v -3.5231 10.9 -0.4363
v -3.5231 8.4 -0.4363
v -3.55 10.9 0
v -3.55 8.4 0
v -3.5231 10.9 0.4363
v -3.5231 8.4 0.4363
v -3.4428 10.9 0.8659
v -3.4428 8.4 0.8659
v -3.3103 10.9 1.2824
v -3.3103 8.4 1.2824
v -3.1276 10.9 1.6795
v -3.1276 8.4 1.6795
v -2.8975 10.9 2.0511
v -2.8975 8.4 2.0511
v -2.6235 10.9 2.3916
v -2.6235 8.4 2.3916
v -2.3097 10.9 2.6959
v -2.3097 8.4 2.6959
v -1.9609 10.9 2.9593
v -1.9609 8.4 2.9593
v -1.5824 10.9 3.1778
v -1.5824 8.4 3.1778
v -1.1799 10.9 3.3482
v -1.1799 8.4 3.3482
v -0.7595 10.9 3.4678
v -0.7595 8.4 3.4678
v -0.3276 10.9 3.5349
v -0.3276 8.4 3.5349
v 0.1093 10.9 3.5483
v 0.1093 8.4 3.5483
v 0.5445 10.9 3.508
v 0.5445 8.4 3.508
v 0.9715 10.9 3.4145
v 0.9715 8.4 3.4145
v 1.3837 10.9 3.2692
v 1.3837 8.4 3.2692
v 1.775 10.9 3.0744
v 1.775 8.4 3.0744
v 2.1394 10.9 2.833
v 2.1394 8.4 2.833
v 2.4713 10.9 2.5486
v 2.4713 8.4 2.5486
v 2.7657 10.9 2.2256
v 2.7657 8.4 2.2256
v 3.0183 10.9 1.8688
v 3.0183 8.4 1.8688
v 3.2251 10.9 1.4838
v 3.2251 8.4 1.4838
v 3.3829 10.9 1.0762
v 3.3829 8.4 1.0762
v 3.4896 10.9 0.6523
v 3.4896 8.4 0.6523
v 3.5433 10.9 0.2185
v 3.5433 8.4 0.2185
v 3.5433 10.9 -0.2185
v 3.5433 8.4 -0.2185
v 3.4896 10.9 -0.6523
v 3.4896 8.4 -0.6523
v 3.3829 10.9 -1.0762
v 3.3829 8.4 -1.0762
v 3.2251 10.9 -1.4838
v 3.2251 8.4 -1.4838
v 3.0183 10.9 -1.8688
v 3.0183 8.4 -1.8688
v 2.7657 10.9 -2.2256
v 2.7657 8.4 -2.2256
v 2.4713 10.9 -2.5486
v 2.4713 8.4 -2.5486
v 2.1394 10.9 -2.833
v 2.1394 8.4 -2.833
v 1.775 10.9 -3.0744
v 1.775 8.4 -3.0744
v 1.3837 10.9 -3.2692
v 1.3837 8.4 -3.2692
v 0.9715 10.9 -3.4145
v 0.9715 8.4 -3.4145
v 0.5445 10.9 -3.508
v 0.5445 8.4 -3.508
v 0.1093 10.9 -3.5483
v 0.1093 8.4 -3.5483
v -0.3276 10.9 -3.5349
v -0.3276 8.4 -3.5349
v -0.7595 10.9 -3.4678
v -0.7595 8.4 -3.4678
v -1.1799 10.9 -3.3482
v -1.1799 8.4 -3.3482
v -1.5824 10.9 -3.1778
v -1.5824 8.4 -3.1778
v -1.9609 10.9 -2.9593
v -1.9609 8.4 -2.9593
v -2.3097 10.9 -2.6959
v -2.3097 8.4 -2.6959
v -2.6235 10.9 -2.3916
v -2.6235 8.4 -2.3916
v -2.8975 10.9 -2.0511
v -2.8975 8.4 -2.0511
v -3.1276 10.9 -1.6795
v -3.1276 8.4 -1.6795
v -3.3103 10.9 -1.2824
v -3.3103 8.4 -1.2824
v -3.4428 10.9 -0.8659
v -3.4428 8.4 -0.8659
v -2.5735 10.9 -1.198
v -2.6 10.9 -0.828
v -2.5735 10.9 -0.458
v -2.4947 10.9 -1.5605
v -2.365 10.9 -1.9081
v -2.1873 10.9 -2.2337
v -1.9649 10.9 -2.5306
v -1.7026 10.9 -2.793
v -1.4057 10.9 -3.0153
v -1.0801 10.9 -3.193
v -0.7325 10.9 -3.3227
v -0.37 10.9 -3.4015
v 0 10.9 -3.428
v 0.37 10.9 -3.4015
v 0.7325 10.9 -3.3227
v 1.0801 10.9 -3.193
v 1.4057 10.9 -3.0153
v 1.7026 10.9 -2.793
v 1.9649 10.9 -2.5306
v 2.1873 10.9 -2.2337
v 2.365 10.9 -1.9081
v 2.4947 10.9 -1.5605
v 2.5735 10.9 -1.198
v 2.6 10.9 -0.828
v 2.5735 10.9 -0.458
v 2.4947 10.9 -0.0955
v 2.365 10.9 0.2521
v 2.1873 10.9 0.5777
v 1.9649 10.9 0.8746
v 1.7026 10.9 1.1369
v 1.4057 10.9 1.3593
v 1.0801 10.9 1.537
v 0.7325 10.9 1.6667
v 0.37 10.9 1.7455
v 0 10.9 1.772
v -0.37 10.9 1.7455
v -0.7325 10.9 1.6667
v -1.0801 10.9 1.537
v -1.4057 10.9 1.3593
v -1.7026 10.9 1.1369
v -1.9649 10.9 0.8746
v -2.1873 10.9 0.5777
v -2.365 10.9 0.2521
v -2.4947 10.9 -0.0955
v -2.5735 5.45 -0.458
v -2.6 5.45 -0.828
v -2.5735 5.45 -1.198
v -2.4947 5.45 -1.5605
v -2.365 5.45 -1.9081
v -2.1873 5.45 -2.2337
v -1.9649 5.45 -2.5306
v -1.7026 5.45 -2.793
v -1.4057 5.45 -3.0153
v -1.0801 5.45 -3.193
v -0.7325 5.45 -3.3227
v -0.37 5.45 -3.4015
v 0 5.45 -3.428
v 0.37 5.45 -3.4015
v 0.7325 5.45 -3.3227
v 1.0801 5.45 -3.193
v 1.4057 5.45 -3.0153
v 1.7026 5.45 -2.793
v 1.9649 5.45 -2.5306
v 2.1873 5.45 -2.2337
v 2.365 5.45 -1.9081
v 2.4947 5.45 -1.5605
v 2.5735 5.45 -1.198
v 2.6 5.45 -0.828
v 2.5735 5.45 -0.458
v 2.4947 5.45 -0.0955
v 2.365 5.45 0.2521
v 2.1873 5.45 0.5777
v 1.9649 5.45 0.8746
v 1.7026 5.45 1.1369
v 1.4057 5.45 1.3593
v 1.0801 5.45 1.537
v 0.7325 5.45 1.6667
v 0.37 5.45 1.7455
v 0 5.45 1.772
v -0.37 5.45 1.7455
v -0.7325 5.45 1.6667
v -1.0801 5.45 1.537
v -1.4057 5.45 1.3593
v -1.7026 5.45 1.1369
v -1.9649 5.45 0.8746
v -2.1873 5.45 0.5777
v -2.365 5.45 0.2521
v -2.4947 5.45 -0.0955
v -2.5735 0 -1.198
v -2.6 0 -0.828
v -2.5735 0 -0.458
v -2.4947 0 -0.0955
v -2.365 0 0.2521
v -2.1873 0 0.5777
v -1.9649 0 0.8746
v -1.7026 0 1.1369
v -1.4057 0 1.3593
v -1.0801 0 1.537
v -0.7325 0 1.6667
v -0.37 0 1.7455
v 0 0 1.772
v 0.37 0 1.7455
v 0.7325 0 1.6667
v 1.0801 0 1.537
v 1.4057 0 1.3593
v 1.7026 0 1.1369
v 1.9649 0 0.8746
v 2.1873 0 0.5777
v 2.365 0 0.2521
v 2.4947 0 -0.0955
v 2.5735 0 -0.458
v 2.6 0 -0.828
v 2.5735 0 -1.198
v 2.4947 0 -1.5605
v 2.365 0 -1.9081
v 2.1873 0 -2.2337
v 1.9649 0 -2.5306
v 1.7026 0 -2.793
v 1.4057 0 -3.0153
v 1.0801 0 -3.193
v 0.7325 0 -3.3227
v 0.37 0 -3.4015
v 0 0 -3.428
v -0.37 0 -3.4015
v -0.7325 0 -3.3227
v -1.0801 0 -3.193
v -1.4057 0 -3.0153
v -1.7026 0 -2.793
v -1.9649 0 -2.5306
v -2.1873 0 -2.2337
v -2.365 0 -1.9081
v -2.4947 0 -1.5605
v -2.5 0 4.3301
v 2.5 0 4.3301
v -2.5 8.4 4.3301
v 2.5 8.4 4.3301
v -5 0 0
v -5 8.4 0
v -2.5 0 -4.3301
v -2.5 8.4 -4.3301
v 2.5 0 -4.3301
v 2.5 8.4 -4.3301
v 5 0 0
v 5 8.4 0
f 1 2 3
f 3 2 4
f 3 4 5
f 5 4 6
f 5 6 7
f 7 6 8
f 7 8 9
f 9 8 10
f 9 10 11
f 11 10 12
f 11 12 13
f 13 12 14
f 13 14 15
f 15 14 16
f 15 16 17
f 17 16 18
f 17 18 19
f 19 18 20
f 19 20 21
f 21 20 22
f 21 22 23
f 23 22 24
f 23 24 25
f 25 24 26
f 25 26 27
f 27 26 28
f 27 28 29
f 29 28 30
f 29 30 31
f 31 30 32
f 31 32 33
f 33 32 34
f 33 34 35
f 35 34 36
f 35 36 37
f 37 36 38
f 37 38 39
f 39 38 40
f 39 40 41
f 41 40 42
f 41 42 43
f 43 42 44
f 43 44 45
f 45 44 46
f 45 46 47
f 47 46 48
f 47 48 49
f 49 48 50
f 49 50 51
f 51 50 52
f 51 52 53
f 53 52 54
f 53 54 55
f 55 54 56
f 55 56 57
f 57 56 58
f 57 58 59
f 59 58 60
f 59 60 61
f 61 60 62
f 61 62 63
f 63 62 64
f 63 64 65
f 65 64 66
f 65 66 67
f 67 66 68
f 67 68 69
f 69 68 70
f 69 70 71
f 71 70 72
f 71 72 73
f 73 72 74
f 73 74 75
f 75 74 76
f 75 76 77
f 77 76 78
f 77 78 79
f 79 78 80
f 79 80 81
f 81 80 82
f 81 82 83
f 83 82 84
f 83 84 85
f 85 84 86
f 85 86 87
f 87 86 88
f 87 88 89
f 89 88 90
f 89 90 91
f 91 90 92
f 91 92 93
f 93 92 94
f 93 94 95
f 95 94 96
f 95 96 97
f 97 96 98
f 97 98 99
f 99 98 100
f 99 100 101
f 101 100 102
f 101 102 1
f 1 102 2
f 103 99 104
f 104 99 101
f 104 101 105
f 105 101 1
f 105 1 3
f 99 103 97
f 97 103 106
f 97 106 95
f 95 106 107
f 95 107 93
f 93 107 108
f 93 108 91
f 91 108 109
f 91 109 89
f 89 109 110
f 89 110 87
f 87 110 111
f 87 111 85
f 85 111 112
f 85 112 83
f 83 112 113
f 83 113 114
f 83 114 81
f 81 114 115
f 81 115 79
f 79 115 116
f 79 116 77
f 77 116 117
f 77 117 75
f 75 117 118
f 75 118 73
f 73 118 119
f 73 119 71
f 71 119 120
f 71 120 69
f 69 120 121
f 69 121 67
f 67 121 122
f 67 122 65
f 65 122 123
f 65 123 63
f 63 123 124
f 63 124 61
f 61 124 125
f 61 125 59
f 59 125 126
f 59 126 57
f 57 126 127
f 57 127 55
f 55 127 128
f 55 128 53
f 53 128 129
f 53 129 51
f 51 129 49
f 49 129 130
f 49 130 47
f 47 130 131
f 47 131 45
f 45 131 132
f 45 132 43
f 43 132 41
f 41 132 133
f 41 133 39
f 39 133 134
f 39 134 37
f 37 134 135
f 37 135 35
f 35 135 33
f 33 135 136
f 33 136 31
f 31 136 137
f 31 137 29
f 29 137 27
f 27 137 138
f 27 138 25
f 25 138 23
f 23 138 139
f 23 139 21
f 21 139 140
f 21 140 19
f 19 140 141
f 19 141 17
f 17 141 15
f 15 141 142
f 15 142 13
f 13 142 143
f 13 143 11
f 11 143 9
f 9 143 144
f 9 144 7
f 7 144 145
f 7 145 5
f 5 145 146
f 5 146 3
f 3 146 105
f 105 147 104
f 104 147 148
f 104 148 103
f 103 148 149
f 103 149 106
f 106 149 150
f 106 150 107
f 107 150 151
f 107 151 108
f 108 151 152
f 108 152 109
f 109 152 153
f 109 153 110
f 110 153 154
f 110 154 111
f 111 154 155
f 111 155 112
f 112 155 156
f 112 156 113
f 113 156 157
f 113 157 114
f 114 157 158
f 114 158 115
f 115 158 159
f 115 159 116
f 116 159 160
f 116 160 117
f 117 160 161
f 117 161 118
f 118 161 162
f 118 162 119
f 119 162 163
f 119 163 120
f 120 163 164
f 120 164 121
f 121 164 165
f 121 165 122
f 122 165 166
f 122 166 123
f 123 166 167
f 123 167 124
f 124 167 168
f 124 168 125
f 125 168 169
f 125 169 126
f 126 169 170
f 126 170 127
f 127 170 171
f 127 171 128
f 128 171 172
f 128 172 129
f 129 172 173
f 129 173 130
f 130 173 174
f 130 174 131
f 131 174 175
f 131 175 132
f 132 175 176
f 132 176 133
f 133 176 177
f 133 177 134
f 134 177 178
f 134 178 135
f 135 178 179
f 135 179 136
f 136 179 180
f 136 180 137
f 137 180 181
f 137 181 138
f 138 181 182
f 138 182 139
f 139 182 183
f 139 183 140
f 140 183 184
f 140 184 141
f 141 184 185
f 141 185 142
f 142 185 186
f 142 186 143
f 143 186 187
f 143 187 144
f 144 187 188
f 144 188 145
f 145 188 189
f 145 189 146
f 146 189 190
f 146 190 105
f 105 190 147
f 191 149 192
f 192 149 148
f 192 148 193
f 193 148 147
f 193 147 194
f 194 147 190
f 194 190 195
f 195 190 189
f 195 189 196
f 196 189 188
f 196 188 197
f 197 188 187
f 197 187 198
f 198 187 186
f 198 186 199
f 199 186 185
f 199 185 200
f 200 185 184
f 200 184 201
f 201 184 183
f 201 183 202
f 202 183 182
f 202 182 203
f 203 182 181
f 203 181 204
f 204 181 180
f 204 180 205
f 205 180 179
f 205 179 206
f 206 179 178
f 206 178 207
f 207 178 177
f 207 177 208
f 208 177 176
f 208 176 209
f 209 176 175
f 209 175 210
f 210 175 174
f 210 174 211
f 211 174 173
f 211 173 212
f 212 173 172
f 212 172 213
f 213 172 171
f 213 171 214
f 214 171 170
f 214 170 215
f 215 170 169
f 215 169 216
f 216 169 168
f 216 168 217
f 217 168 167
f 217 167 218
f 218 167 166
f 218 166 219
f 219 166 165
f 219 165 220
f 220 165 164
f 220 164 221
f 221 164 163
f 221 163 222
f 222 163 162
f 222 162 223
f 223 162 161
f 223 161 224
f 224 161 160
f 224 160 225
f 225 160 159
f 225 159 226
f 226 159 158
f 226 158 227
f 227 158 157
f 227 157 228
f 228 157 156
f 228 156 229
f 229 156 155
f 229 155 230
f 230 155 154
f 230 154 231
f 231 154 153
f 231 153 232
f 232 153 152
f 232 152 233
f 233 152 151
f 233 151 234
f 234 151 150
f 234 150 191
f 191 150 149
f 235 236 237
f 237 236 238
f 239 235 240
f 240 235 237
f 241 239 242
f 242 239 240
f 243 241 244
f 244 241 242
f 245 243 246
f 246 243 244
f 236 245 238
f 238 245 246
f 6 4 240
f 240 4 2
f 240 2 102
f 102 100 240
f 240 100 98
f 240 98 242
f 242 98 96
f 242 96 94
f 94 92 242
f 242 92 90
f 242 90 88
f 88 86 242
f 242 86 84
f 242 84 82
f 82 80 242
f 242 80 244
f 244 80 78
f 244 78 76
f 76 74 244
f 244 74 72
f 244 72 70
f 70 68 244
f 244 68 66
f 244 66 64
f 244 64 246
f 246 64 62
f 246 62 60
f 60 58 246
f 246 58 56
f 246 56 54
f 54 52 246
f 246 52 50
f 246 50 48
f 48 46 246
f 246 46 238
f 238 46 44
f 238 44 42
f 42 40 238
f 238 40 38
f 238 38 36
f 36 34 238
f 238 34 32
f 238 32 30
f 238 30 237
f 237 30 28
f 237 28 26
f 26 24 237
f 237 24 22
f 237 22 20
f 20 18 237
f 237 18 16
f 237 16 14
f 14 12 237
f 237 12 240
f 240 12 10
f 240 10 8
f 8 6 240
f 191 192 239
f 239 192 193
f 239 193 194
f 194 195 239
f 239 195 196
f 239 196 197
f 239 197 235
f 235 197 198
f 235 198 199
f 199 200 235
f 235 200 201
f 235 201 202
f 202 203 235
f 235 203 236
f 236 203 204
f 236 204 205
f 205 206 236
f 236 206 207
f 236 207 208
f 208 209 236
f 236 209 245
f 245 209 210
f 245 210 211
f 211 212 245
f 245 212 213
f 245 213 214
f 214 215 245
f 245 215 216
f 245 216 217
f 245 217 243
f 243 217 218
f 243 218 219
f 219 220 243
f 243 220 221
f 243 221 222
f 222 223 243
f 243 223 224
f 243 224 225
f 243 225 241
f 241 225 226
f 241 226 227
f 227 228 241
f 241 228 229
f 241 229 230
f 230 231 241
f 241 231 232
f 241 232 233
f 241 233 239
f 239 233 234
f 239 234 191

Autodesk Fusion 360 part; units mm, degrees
sketch "Skizze1" plane through (0, 0, 0) normal (0, 1, 0) x (1, 0, 0)
  line L0 (5, 0) -> (2.5, 4.3301)
  line L1 (2.5, 4.3301) -> (-2.5, 4.3301)
  line L2 (-2.5, 4.3301) -> (-5, 0)
  line L3 (-5, 0) -> (-2.5, -4.3301)
  line L4 (-2.5, -4.3301) -> (2.5, -4.3301)
  line L5 (2.5, -4.3301) -> (5, 0)
  circle A0 centre (0, 0) radius 3.55
  circle A1 centre (0, 0.828) radius 2.6
  dimension "d1" = 10
  dimension "d2" = 7.1
  dimension "d3" = 5.2
extrude "Extrusion1" add sketch "Skizze1" along normal blind 8.4 contours L0 L1 L2 L3 L4 L5 | A0
extrude "Extrusion2" add sketch "Skizze1" along normal blind 2.5 from surface at 8.4 contours A0
